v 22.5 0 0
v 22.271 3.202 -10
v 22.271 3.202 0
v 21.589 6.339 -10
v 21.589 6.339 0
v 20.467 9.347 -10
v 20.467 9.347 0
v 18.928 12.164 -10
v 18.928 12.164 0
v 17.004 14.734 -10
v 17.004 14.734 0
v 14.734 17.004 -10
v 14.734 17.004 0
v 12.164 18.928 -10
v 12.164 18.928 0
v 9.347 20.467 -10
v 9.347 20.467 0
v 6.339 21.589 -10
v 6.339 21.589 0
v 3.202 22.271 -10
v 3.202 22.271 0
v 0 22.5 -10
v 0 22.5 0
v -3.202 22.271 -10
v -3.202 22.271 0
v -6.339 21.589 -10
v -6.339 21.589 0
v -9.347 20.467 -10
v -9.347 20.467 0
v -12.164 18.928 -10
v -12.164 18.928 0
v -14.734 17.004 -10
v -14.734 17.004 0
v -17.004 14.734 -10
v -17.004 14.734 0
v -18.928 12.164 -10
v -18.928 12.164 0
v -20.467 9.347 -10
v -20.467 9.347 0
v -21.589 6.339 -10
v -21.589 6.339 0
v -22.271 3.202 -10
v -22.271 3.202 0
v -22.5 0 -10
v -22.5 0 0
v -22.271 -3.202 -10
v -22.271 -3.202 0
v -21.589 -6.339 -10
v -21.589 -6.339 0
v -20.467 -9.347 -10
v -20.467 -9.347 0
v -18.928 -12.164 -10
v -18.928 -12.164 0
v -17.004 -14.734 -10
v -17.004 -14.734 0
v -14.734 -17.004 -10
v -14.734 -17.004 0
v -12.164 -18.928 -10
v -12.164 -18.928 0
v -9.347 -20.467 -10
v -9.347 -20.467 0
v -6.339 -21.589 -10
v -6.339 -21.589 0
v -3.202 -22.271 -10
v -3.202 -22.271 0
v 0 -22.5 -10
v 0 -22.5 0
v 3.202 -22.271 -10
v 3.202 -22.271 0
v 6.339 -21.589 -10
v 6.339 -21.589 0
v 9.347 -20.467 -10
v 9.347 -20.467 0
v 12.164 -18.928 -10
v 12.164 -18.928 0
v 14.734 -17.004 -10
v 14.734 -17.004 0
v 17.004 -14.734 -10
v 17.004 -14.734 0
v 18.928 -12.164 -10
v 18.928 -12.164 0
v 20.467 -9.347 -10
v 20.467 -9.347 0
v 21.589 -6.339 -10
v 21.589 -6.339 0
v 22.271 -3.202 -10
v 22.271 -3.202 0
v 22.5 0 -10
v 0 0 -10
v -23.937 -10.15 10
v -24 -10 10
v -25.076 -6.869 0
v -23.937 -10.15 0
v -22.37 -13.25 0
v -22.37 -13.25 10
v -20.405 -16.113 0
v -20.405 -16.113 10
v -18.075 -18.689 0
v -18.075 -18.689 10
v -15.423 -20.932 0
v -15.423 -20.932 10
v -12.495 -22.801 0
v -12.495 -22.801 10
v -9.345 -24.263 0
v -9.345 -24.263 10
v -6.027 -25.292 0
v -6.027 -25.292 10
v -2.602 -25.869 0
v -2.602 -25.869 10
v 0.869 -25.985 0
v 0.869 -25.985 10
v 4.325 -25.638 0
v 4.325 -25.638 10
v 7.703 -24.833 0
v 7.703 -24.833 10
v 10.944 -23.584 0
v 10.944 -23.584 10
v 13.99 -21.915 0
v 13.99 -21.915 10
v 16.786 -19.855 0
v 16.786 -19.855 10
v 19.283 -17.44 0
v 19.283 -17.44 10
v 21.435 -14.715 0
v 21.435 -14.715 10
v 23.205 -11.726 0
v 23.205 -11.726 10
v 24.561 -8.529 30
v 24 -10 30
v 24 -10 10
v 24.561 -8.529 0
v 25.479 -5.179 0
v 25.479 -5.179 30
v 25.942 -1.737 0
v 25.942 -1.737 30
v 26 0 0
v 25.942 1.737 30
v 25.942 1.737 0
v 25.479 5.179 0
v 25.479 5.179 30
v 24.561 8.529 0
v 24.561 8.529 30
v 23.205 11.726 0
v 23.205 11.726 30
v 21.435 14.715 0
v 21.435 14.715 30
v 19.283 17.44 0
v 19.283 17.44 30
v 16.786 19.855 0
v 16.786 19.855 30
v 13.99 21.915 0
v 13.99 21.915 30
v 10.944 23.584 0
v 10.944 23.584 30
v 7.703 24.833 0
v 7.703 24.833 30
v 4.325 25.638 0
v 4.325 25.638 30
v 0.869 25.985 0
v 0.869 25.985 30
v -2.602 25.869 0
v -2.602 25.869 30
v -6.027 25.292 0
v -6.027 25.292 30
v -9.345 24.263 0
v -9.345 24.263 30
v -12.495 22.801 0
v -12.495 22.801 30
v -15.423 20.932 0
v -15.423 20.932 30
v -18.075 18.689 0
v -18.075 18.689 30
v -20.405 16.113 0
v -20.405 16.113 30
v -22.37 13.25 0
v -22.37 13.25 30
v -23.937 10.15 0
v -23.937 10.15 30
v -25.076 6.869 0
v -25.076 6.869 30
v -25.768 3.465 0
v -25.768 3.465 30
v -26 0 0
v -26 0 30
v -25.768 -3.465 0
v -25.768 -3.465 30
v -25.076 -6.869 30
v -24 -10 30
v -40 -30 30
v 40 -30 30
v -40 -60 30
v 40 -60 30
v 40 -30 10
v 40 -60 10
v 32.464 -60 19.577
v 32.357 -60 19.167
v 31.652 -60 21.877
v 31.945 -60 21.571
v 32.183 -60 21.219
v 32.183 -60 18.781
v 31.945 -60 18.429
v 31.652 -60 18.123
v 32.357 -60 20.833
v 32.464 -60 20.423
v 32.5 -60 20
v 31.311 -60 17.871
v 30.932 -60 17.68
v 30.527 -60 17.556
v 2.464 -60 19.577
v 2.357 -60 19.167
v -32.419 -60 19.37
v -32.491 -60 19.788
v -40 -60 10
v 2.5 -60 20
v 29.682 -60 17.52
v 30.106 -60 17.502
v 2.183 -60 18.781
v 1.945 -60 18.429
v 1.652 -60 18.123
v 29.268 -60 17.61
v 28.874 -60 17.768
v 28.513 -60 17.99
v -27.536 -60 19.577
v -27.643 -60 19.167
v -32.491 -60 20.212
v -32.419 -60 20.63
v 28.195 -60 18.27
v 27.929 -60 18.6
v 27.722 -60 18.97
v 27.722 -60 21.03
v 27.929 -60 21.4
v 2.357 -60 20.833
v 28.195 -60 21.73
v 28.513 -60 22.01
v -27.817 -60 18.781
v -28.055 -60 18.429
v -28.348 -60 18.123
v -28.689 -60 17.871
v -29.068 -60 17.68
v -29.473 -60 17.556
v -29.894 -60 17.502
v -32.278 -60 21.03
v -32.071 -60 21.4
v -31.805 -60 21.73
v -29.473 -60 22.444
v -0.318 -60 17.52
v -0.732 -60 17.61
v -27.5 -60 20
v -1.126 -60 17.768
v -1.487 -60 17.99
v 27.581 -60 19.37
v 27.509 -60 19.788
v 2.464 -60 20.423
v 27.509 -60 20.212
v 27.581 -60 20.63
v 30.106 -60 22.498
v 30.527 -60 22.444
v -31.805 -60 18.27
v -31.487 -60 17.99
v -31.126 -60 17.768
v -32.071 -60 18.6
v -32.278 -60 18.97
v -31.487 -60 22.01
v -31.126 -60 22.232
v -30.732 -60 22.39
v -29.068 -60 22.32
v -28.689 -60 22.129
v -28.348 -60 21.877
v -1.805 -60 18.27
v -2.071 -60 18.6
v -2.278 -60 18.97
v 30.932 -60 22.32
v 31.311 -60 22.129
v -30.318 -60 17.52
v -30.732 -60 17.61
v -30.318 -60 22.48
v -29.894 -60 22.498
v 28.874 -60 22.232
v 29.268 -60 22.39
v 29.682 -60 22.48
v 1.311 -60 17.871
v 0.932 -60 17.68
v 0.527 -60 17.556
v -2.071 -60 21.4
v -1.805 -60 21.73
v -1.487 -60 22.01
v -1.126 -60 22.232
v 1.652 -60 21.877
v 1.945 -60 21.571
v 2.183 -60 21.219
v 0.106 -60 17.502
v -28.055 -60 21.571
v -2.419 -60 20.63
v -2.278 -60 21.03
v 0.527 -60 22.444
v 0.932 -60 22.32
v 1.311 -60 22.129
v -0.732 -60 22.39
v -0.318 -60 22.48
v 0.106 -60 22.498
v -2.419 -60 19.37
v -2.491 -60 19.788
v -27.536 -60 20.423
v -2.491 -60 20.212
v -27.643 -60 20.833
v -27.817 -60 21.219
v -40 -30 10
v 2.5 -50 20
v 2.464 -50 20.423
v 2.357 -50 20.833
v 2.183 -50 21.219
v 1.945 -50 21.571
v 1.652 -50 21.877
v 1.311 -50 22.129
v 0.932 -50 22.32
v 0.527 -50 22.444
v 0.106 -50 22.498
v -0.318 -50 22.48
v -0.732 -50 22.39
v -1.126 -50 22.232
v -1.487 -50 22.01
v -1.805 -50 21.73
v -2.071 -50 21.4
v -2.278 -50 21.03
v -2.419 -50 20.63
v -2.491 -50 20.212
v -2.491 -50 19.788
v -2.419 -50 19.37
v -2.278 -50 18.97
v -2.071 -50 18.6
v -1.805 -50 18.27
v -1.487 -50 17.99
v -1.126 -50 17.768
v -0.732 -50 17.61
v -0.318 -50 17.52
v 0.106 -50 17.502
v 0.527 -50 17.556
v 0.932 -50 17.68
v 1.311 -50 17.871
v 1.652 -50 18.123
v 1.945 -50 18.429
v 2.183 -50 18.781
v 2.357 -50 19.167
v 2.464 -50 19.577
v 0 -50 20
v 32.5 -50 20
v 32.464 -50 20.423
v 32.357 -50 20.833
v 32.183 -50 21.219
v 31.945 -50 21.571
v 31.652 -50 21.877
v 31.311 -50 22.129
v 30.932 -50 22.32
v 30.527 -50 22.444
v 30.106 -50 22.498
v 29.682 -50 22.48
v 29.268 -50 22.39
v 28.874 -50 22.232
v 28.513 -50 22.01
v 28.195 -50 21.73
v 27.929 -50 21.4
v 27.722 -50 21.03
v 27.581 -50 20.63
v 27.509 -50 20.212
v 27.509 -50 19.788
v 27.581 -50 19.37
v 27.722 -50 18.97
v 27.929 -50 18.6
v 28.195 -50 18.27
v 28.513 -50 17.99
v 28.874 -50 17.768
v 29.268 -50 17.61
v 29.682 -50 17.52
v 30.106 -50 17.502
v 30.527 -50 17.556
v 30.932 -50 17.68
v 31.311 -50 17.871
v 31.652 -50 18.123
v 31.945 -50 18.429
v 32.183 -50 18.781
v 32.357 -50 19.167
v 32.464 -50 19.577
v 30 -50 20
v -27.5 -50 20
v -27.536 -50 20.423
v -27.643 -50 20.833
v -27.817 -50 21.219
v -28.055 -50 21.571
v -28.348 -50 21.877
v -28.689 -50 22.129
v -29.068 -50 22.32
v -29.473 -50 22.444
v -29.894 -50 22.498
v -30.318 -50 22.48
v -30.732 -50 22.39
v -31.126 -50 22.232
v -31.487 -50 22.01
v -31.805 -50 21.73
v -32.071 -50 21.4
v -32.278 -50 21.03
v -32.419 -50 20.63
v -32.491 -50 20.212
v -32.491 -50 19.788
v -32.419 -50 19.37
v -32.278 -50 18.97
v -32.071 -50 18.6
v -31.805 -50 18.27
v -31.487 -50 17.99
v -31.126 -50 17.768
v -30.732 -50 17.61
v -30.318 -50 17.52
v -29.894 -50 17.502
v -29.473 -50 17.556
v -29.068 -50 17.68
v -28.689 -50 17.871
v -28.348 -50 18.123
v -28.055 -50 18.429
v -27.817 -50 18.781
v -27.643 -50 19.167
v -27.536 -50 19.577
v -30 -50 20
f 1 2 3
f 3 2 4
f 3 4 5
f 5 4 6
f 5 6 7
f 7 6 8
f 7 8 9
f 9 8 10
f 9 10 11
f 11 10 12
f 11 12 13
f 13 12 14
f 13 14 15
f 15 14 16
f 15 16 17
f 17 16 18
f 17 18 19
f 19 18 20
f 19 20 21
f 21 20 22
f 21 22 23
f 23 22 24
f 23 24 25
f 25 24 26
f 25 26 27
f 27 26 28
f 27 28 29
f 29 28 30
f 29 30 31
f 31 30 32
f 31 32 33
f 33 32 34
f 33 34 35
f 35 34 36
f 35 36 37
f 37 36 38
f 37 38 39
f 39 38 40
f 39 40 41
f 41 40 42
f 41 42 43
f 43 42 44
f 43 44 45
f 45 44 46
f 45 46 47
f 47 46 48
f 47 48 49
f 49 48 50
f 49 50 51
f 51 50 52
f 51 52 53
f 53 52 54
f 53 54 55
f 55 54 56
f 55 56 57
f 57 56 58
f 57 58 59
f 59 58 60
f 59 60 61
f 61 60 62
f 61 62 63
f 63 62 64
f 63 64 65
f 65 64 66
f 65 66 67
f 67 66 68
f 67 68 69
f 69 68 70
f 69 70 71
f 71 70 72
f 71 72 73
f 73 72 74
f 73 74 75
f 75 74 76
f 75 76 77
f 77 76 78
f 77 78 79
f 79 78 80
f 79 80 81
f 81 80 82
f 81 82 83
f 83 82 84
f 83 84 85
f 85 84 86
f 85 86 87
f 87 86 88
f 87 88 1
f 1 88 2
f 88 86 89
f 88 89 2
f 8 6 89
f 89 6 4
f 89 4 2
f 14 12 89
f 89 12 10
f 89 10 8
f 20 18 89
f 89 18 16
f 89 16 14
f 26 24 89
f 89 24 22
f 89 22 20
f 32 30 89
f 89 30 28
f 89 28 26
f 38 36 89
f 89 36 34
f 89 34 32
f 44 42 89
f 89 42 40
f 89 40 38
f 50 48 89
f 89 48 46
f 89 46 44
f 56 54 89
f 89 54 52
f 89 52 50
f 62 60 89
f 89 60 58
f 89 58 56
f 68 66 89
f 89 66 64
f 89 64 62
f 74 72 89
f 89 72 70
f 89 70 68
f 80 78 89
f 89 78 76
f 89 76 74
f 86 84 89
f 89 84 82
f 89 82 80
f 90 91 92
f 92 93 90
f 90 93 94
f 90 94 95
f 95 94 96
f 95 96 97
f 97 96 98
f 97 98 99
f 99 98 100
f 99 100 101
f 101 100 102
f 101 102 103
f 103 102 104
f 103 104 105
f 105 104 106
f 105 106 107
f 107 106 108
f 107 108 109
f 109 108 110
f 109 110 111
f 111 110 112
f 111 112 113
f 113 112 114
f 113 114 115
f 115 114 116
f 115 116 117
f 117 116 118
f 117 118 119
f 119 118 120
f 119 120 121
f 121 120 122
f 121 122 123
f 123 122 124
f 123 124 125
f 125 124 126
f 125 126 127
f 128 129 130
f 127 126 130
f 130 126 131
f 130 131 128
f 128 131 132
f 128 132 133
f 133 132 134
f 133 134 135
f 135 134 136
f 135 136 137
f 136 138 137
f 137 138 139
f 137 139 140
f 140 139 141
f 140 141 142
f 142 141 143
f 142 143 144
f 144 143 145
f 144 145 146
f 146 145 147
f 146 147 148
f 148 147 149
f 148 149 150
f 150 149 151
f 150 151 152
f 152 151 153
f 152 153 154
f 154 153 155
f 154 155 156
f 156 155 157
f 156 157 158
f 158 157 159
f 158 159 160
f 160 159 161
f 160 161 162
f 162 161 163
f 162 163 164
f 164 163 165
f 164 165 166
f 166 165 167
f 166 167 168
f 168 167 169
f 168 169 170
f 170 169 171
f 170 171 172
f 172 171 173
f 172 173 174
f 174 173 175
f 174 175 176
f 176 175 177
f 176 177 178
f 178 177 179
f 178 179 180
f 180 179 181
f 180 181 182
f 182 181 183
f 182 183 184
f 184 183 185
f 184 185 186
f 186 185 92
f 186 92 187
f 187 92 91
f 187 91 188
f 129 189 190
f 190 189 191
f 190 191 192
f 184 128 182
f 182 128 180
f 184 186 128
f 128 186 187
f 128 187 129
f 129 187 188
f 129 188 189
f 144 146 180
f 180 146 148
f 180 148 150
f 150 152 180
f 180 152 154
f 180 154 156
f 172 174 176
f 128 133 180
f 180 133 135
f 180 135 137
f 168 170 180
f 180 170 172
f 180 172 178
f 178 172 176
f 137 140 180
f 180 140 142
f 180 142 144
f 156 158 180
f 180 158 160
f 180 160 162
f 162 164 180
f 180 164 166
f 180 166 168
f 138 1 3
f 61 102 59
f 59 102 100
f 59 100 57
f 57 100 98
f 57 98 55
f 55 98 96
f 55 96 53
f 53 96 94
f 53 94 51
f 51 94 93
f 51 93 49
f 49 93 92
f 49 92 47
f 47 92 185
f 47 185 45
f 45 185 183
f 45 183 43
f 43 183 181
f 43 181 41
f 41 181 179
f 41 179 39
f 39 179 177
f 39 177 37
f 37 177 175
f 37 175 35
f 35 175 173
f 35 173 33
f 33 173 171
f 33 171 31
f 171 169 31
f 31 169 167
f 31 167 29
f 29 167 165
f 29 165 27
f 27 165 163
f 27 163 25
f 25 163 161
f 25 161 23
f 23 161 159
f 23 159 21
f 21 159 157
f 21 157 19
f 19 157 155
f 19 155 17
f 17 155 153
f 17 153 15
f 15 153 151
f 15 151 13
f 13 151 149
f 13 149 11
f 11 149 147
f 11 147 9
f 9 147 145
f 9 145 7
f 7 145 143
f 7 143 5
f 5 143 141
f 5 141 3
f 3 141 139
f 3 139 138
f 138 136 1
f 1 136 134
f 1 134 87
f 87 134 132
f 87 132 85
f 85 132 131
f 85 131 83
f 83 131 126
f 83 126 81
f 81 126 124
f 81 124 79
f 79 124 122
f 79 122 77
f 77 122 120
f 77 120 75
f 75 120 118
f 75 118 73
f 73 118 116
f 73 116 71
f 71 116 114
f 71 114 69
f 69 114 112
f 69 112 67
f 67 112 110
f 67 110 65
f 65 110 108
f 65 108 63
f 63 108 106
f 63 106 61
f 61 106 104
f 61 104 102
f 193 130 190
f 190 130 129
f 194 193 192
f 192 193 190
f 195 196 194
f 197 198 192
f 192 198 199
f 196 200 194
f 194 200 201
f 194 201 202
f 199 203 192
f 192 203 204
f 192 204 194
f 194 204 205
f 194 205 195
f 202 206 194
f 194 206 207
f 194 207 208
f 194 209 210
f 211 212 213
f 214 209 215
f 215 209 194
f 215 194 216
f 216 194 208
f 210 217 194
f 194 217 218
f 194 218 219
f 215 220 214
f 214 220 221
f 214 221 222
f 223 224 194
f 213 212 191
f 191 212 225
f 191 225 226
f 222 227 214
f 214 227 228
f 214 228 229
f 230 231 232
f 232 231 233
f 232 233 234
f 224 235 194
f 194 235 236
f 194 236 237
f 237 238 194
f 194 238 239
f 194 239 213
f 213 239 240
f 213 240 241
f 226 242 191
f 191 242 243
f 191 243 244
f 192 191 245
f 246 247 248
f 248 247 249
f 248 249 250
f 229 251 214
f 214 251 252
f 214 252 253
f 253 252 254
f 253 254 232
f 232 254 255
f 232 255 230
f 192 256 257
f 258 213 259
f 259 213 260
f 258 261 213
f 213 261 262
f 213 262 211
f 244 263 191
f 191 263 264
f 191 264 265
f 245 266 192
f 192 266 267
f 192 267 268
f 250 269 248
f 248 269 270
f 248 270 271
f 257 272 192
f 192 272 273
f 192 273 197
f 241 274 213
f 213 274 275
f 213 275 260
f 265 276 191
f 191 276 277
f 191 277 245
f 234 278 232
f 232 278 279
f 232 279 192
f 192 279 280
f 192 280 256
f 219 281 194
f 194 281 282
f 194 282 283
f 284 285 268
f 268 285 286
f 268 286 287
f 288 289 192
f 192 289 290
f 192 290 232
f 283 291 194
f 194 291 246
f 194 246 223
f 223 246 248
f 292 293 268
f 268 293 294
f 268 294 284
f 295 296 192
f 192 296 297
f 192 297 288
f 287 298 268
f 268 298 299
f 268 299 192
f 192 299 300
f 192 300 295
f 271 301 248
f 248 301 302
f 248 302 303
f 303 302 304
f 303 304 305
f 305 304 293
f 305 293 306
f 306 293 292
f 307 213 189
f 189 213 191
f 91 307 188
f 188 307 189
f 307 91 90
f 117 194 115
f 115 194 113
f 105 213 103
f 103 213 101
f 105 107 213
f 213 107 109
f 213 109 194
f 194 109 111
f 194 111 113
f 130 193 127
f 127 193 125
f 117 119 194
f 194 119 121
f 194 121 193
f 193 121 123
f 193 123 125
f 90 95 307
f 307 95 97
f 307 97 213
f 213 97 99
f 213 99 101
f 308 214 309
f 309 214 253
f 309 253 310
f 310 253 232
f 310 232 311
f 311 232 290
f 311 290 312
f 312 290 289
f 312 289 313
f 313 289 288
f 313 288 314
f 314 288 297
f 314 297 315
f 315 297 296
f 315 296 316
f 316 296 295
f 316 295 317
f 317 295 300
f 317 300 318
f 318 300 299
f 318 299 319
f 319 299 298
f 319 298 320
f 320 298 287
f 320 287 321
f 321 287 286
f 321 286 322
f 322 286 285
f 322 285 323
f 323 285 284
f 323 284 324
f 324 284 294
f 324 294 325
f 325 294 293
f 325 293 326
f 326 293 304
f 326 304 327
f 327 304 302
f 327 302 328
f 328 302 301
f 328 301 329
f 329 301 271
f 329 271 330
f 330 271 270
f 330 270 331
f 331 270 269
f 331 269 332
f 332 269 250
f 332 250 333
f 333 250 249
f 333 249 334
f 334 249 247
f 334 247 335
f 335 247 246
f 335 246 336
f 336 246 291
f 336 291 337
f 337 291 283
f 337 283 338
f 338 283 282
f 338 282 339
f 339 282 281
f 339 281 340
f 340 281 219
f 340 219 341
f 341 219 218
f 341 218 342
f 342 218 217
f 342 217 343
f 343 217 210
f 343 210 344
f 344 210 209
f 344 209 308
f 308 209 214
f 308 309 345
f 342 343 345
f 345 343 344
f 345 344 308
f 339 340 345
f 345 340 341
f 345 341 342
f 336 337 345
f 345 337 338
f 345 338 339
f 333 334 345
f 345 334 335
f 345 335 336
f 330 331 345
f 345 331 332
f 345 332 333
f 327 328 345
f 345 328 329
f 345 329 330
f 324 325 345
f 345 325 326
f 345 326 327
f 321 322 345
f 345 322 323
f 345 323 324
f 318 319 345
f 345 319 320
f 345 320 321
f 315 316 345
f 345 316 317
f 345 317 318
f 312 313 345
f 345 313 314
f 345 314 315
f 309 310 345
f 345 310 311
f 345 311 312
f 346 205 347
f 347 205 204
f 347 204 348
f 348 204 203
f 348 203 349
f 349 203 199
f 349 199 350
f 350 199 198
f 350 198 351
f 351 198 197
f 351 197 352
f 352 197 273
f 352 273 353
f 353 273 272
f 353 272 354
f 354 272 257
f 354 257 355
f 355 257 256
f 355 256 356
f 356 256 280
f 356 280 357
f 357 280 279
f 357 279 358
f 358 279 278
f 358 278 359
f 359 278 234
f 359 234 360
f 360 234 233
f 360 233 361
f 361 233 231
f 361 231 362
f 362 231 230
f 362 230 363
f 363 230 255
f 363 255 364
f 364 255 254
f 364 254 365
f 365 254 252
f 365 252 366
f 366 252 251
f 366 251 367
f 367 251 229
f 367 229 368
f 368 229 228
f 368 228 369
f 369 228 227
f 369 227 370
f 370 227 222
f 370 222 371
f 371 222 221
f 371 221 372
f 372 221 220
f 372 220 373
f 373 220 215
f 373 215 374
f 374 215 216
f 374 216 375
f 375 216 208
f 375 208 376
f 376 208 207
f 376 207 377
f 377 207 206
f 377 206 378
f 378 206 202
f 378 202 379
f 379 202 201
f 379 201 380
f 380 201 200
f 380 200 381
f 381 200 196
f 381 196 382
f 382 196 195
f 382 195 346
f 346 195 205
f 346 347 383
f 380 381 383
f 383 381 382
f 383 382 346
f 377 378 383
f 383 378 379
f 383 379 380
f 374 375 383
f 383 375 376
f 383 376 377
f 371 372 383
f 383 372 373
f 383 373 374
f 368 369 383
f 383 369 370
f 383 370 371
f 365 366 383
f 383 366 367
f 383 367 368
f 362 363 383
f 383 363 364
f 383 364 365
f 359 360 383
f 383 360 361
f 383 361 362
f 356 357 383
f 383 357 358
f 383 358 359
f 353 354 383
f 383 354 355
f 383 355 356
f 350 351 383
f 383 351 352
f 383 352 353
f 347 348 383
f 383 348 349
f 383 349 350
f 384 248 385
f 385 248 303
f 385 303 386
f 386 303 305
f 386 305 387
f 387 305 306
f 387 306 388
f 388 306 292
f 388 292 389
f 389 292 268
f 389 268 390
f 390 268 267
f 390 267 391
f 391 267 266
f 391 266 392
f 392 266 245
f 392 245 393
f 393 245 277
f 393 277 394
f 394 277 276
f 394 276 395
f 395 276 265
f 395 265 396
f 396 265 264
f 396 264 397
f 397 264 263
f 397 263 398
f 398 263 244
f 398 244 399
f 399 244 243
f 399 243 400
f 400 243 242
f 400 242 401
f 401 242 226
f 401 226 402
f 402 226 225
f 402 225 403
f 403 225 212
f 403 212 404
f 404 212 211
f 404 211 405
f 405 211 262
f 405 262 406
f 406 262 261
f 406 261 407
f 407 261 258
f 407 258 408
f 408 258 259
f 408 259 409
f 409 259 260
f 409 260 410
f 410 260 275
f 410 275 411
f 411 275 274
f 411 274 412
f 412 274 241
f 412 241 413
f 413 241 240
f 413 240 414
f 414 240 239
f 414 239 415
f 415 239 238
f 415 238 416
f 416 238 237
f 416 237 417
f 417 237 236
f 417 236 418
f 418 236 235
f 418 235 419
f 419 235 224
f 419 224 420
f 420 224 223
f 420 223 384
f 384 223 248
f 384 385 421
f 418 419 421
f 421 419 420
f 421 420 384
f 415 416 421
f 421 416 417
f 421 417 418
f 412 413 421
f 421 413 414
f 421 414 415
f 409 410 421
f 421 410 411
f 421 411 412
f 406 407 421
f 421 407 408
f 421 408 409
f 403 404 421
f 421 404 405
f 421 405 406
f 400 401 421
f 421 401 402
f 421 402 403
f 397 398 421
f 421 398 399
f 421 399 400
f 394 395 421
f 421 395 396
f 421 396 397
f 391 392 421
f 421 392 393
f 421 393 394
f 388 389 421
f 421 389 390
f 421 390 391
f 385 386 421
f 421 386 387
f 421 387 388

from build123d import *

# Parameters (mm, degrees)
CROQUIS1_R              = 22.5
SALIENTE_EXTRUIR1_DEPTH = 10
CROQUIS2_R              = 26
SALIENTE_EXTRUIR2_DEPTH = 30
SALIENTE_EXTRUIR4_START = -20
SALIENTE_EXTRUIR4_DEPTH = 20
CROQUIS5_R              = 2.5
CORTAR_EXTRUIR1_DEPTH   = 10


with BuildPart() as part:
    # Croquis1 → Saliente-Extruir1 (new body)
    with BuildSketch(Plane.XY):
        Circle(CROQUIS1_R)
    extrude(amount=-SALIENTE_EXTRUIR1_DEPTH)

    # Croquis2 → Saliente-Extruir2 (add)
    with BuildSketch(Plane.XY):
        Circle(CROQUIS2_R)
    extrude(amount=SALIENTE_EXTRUIR2_DEPTH)

    # Croquis3 → Saliente-Extruir4 (add)
    with BuildSketch(Plane.XY.offset(30).offset(SALIENTE_EXTRUIR4_START)):
        with BuildLine():
            Line((-24, -10), (-40, -30))
            Line((-40, -30), (-40, -60))
            Line((-40, -60), (40, -60))
            Line((40, -60), (40, -30))
            Line((40, -30), (24, -10))
            ThreePointArc((24, -10), (0, -26), (-24, -10))
        make_face()
    extrude(amount=SALIENTE_EXTRUIR4_DEPTH)

    # Croquis5 → Cortar-Extruir1 (cut)
    with BuildSketch(Plane.XZ.offset(60)):
        with Locations((-30, 20)):
            Circle(CROQUIS5_R)
        with Locations((30, 20)):
            Circle(CROQUIS5_R)
        with Locations((0, 20)):
            Circle(CROQUIS5_R)
    extrude(amount=-CORTAR_EXTRUIR1_DEPTH, mode=Mode.SUBTRACT)


solid = part.part
